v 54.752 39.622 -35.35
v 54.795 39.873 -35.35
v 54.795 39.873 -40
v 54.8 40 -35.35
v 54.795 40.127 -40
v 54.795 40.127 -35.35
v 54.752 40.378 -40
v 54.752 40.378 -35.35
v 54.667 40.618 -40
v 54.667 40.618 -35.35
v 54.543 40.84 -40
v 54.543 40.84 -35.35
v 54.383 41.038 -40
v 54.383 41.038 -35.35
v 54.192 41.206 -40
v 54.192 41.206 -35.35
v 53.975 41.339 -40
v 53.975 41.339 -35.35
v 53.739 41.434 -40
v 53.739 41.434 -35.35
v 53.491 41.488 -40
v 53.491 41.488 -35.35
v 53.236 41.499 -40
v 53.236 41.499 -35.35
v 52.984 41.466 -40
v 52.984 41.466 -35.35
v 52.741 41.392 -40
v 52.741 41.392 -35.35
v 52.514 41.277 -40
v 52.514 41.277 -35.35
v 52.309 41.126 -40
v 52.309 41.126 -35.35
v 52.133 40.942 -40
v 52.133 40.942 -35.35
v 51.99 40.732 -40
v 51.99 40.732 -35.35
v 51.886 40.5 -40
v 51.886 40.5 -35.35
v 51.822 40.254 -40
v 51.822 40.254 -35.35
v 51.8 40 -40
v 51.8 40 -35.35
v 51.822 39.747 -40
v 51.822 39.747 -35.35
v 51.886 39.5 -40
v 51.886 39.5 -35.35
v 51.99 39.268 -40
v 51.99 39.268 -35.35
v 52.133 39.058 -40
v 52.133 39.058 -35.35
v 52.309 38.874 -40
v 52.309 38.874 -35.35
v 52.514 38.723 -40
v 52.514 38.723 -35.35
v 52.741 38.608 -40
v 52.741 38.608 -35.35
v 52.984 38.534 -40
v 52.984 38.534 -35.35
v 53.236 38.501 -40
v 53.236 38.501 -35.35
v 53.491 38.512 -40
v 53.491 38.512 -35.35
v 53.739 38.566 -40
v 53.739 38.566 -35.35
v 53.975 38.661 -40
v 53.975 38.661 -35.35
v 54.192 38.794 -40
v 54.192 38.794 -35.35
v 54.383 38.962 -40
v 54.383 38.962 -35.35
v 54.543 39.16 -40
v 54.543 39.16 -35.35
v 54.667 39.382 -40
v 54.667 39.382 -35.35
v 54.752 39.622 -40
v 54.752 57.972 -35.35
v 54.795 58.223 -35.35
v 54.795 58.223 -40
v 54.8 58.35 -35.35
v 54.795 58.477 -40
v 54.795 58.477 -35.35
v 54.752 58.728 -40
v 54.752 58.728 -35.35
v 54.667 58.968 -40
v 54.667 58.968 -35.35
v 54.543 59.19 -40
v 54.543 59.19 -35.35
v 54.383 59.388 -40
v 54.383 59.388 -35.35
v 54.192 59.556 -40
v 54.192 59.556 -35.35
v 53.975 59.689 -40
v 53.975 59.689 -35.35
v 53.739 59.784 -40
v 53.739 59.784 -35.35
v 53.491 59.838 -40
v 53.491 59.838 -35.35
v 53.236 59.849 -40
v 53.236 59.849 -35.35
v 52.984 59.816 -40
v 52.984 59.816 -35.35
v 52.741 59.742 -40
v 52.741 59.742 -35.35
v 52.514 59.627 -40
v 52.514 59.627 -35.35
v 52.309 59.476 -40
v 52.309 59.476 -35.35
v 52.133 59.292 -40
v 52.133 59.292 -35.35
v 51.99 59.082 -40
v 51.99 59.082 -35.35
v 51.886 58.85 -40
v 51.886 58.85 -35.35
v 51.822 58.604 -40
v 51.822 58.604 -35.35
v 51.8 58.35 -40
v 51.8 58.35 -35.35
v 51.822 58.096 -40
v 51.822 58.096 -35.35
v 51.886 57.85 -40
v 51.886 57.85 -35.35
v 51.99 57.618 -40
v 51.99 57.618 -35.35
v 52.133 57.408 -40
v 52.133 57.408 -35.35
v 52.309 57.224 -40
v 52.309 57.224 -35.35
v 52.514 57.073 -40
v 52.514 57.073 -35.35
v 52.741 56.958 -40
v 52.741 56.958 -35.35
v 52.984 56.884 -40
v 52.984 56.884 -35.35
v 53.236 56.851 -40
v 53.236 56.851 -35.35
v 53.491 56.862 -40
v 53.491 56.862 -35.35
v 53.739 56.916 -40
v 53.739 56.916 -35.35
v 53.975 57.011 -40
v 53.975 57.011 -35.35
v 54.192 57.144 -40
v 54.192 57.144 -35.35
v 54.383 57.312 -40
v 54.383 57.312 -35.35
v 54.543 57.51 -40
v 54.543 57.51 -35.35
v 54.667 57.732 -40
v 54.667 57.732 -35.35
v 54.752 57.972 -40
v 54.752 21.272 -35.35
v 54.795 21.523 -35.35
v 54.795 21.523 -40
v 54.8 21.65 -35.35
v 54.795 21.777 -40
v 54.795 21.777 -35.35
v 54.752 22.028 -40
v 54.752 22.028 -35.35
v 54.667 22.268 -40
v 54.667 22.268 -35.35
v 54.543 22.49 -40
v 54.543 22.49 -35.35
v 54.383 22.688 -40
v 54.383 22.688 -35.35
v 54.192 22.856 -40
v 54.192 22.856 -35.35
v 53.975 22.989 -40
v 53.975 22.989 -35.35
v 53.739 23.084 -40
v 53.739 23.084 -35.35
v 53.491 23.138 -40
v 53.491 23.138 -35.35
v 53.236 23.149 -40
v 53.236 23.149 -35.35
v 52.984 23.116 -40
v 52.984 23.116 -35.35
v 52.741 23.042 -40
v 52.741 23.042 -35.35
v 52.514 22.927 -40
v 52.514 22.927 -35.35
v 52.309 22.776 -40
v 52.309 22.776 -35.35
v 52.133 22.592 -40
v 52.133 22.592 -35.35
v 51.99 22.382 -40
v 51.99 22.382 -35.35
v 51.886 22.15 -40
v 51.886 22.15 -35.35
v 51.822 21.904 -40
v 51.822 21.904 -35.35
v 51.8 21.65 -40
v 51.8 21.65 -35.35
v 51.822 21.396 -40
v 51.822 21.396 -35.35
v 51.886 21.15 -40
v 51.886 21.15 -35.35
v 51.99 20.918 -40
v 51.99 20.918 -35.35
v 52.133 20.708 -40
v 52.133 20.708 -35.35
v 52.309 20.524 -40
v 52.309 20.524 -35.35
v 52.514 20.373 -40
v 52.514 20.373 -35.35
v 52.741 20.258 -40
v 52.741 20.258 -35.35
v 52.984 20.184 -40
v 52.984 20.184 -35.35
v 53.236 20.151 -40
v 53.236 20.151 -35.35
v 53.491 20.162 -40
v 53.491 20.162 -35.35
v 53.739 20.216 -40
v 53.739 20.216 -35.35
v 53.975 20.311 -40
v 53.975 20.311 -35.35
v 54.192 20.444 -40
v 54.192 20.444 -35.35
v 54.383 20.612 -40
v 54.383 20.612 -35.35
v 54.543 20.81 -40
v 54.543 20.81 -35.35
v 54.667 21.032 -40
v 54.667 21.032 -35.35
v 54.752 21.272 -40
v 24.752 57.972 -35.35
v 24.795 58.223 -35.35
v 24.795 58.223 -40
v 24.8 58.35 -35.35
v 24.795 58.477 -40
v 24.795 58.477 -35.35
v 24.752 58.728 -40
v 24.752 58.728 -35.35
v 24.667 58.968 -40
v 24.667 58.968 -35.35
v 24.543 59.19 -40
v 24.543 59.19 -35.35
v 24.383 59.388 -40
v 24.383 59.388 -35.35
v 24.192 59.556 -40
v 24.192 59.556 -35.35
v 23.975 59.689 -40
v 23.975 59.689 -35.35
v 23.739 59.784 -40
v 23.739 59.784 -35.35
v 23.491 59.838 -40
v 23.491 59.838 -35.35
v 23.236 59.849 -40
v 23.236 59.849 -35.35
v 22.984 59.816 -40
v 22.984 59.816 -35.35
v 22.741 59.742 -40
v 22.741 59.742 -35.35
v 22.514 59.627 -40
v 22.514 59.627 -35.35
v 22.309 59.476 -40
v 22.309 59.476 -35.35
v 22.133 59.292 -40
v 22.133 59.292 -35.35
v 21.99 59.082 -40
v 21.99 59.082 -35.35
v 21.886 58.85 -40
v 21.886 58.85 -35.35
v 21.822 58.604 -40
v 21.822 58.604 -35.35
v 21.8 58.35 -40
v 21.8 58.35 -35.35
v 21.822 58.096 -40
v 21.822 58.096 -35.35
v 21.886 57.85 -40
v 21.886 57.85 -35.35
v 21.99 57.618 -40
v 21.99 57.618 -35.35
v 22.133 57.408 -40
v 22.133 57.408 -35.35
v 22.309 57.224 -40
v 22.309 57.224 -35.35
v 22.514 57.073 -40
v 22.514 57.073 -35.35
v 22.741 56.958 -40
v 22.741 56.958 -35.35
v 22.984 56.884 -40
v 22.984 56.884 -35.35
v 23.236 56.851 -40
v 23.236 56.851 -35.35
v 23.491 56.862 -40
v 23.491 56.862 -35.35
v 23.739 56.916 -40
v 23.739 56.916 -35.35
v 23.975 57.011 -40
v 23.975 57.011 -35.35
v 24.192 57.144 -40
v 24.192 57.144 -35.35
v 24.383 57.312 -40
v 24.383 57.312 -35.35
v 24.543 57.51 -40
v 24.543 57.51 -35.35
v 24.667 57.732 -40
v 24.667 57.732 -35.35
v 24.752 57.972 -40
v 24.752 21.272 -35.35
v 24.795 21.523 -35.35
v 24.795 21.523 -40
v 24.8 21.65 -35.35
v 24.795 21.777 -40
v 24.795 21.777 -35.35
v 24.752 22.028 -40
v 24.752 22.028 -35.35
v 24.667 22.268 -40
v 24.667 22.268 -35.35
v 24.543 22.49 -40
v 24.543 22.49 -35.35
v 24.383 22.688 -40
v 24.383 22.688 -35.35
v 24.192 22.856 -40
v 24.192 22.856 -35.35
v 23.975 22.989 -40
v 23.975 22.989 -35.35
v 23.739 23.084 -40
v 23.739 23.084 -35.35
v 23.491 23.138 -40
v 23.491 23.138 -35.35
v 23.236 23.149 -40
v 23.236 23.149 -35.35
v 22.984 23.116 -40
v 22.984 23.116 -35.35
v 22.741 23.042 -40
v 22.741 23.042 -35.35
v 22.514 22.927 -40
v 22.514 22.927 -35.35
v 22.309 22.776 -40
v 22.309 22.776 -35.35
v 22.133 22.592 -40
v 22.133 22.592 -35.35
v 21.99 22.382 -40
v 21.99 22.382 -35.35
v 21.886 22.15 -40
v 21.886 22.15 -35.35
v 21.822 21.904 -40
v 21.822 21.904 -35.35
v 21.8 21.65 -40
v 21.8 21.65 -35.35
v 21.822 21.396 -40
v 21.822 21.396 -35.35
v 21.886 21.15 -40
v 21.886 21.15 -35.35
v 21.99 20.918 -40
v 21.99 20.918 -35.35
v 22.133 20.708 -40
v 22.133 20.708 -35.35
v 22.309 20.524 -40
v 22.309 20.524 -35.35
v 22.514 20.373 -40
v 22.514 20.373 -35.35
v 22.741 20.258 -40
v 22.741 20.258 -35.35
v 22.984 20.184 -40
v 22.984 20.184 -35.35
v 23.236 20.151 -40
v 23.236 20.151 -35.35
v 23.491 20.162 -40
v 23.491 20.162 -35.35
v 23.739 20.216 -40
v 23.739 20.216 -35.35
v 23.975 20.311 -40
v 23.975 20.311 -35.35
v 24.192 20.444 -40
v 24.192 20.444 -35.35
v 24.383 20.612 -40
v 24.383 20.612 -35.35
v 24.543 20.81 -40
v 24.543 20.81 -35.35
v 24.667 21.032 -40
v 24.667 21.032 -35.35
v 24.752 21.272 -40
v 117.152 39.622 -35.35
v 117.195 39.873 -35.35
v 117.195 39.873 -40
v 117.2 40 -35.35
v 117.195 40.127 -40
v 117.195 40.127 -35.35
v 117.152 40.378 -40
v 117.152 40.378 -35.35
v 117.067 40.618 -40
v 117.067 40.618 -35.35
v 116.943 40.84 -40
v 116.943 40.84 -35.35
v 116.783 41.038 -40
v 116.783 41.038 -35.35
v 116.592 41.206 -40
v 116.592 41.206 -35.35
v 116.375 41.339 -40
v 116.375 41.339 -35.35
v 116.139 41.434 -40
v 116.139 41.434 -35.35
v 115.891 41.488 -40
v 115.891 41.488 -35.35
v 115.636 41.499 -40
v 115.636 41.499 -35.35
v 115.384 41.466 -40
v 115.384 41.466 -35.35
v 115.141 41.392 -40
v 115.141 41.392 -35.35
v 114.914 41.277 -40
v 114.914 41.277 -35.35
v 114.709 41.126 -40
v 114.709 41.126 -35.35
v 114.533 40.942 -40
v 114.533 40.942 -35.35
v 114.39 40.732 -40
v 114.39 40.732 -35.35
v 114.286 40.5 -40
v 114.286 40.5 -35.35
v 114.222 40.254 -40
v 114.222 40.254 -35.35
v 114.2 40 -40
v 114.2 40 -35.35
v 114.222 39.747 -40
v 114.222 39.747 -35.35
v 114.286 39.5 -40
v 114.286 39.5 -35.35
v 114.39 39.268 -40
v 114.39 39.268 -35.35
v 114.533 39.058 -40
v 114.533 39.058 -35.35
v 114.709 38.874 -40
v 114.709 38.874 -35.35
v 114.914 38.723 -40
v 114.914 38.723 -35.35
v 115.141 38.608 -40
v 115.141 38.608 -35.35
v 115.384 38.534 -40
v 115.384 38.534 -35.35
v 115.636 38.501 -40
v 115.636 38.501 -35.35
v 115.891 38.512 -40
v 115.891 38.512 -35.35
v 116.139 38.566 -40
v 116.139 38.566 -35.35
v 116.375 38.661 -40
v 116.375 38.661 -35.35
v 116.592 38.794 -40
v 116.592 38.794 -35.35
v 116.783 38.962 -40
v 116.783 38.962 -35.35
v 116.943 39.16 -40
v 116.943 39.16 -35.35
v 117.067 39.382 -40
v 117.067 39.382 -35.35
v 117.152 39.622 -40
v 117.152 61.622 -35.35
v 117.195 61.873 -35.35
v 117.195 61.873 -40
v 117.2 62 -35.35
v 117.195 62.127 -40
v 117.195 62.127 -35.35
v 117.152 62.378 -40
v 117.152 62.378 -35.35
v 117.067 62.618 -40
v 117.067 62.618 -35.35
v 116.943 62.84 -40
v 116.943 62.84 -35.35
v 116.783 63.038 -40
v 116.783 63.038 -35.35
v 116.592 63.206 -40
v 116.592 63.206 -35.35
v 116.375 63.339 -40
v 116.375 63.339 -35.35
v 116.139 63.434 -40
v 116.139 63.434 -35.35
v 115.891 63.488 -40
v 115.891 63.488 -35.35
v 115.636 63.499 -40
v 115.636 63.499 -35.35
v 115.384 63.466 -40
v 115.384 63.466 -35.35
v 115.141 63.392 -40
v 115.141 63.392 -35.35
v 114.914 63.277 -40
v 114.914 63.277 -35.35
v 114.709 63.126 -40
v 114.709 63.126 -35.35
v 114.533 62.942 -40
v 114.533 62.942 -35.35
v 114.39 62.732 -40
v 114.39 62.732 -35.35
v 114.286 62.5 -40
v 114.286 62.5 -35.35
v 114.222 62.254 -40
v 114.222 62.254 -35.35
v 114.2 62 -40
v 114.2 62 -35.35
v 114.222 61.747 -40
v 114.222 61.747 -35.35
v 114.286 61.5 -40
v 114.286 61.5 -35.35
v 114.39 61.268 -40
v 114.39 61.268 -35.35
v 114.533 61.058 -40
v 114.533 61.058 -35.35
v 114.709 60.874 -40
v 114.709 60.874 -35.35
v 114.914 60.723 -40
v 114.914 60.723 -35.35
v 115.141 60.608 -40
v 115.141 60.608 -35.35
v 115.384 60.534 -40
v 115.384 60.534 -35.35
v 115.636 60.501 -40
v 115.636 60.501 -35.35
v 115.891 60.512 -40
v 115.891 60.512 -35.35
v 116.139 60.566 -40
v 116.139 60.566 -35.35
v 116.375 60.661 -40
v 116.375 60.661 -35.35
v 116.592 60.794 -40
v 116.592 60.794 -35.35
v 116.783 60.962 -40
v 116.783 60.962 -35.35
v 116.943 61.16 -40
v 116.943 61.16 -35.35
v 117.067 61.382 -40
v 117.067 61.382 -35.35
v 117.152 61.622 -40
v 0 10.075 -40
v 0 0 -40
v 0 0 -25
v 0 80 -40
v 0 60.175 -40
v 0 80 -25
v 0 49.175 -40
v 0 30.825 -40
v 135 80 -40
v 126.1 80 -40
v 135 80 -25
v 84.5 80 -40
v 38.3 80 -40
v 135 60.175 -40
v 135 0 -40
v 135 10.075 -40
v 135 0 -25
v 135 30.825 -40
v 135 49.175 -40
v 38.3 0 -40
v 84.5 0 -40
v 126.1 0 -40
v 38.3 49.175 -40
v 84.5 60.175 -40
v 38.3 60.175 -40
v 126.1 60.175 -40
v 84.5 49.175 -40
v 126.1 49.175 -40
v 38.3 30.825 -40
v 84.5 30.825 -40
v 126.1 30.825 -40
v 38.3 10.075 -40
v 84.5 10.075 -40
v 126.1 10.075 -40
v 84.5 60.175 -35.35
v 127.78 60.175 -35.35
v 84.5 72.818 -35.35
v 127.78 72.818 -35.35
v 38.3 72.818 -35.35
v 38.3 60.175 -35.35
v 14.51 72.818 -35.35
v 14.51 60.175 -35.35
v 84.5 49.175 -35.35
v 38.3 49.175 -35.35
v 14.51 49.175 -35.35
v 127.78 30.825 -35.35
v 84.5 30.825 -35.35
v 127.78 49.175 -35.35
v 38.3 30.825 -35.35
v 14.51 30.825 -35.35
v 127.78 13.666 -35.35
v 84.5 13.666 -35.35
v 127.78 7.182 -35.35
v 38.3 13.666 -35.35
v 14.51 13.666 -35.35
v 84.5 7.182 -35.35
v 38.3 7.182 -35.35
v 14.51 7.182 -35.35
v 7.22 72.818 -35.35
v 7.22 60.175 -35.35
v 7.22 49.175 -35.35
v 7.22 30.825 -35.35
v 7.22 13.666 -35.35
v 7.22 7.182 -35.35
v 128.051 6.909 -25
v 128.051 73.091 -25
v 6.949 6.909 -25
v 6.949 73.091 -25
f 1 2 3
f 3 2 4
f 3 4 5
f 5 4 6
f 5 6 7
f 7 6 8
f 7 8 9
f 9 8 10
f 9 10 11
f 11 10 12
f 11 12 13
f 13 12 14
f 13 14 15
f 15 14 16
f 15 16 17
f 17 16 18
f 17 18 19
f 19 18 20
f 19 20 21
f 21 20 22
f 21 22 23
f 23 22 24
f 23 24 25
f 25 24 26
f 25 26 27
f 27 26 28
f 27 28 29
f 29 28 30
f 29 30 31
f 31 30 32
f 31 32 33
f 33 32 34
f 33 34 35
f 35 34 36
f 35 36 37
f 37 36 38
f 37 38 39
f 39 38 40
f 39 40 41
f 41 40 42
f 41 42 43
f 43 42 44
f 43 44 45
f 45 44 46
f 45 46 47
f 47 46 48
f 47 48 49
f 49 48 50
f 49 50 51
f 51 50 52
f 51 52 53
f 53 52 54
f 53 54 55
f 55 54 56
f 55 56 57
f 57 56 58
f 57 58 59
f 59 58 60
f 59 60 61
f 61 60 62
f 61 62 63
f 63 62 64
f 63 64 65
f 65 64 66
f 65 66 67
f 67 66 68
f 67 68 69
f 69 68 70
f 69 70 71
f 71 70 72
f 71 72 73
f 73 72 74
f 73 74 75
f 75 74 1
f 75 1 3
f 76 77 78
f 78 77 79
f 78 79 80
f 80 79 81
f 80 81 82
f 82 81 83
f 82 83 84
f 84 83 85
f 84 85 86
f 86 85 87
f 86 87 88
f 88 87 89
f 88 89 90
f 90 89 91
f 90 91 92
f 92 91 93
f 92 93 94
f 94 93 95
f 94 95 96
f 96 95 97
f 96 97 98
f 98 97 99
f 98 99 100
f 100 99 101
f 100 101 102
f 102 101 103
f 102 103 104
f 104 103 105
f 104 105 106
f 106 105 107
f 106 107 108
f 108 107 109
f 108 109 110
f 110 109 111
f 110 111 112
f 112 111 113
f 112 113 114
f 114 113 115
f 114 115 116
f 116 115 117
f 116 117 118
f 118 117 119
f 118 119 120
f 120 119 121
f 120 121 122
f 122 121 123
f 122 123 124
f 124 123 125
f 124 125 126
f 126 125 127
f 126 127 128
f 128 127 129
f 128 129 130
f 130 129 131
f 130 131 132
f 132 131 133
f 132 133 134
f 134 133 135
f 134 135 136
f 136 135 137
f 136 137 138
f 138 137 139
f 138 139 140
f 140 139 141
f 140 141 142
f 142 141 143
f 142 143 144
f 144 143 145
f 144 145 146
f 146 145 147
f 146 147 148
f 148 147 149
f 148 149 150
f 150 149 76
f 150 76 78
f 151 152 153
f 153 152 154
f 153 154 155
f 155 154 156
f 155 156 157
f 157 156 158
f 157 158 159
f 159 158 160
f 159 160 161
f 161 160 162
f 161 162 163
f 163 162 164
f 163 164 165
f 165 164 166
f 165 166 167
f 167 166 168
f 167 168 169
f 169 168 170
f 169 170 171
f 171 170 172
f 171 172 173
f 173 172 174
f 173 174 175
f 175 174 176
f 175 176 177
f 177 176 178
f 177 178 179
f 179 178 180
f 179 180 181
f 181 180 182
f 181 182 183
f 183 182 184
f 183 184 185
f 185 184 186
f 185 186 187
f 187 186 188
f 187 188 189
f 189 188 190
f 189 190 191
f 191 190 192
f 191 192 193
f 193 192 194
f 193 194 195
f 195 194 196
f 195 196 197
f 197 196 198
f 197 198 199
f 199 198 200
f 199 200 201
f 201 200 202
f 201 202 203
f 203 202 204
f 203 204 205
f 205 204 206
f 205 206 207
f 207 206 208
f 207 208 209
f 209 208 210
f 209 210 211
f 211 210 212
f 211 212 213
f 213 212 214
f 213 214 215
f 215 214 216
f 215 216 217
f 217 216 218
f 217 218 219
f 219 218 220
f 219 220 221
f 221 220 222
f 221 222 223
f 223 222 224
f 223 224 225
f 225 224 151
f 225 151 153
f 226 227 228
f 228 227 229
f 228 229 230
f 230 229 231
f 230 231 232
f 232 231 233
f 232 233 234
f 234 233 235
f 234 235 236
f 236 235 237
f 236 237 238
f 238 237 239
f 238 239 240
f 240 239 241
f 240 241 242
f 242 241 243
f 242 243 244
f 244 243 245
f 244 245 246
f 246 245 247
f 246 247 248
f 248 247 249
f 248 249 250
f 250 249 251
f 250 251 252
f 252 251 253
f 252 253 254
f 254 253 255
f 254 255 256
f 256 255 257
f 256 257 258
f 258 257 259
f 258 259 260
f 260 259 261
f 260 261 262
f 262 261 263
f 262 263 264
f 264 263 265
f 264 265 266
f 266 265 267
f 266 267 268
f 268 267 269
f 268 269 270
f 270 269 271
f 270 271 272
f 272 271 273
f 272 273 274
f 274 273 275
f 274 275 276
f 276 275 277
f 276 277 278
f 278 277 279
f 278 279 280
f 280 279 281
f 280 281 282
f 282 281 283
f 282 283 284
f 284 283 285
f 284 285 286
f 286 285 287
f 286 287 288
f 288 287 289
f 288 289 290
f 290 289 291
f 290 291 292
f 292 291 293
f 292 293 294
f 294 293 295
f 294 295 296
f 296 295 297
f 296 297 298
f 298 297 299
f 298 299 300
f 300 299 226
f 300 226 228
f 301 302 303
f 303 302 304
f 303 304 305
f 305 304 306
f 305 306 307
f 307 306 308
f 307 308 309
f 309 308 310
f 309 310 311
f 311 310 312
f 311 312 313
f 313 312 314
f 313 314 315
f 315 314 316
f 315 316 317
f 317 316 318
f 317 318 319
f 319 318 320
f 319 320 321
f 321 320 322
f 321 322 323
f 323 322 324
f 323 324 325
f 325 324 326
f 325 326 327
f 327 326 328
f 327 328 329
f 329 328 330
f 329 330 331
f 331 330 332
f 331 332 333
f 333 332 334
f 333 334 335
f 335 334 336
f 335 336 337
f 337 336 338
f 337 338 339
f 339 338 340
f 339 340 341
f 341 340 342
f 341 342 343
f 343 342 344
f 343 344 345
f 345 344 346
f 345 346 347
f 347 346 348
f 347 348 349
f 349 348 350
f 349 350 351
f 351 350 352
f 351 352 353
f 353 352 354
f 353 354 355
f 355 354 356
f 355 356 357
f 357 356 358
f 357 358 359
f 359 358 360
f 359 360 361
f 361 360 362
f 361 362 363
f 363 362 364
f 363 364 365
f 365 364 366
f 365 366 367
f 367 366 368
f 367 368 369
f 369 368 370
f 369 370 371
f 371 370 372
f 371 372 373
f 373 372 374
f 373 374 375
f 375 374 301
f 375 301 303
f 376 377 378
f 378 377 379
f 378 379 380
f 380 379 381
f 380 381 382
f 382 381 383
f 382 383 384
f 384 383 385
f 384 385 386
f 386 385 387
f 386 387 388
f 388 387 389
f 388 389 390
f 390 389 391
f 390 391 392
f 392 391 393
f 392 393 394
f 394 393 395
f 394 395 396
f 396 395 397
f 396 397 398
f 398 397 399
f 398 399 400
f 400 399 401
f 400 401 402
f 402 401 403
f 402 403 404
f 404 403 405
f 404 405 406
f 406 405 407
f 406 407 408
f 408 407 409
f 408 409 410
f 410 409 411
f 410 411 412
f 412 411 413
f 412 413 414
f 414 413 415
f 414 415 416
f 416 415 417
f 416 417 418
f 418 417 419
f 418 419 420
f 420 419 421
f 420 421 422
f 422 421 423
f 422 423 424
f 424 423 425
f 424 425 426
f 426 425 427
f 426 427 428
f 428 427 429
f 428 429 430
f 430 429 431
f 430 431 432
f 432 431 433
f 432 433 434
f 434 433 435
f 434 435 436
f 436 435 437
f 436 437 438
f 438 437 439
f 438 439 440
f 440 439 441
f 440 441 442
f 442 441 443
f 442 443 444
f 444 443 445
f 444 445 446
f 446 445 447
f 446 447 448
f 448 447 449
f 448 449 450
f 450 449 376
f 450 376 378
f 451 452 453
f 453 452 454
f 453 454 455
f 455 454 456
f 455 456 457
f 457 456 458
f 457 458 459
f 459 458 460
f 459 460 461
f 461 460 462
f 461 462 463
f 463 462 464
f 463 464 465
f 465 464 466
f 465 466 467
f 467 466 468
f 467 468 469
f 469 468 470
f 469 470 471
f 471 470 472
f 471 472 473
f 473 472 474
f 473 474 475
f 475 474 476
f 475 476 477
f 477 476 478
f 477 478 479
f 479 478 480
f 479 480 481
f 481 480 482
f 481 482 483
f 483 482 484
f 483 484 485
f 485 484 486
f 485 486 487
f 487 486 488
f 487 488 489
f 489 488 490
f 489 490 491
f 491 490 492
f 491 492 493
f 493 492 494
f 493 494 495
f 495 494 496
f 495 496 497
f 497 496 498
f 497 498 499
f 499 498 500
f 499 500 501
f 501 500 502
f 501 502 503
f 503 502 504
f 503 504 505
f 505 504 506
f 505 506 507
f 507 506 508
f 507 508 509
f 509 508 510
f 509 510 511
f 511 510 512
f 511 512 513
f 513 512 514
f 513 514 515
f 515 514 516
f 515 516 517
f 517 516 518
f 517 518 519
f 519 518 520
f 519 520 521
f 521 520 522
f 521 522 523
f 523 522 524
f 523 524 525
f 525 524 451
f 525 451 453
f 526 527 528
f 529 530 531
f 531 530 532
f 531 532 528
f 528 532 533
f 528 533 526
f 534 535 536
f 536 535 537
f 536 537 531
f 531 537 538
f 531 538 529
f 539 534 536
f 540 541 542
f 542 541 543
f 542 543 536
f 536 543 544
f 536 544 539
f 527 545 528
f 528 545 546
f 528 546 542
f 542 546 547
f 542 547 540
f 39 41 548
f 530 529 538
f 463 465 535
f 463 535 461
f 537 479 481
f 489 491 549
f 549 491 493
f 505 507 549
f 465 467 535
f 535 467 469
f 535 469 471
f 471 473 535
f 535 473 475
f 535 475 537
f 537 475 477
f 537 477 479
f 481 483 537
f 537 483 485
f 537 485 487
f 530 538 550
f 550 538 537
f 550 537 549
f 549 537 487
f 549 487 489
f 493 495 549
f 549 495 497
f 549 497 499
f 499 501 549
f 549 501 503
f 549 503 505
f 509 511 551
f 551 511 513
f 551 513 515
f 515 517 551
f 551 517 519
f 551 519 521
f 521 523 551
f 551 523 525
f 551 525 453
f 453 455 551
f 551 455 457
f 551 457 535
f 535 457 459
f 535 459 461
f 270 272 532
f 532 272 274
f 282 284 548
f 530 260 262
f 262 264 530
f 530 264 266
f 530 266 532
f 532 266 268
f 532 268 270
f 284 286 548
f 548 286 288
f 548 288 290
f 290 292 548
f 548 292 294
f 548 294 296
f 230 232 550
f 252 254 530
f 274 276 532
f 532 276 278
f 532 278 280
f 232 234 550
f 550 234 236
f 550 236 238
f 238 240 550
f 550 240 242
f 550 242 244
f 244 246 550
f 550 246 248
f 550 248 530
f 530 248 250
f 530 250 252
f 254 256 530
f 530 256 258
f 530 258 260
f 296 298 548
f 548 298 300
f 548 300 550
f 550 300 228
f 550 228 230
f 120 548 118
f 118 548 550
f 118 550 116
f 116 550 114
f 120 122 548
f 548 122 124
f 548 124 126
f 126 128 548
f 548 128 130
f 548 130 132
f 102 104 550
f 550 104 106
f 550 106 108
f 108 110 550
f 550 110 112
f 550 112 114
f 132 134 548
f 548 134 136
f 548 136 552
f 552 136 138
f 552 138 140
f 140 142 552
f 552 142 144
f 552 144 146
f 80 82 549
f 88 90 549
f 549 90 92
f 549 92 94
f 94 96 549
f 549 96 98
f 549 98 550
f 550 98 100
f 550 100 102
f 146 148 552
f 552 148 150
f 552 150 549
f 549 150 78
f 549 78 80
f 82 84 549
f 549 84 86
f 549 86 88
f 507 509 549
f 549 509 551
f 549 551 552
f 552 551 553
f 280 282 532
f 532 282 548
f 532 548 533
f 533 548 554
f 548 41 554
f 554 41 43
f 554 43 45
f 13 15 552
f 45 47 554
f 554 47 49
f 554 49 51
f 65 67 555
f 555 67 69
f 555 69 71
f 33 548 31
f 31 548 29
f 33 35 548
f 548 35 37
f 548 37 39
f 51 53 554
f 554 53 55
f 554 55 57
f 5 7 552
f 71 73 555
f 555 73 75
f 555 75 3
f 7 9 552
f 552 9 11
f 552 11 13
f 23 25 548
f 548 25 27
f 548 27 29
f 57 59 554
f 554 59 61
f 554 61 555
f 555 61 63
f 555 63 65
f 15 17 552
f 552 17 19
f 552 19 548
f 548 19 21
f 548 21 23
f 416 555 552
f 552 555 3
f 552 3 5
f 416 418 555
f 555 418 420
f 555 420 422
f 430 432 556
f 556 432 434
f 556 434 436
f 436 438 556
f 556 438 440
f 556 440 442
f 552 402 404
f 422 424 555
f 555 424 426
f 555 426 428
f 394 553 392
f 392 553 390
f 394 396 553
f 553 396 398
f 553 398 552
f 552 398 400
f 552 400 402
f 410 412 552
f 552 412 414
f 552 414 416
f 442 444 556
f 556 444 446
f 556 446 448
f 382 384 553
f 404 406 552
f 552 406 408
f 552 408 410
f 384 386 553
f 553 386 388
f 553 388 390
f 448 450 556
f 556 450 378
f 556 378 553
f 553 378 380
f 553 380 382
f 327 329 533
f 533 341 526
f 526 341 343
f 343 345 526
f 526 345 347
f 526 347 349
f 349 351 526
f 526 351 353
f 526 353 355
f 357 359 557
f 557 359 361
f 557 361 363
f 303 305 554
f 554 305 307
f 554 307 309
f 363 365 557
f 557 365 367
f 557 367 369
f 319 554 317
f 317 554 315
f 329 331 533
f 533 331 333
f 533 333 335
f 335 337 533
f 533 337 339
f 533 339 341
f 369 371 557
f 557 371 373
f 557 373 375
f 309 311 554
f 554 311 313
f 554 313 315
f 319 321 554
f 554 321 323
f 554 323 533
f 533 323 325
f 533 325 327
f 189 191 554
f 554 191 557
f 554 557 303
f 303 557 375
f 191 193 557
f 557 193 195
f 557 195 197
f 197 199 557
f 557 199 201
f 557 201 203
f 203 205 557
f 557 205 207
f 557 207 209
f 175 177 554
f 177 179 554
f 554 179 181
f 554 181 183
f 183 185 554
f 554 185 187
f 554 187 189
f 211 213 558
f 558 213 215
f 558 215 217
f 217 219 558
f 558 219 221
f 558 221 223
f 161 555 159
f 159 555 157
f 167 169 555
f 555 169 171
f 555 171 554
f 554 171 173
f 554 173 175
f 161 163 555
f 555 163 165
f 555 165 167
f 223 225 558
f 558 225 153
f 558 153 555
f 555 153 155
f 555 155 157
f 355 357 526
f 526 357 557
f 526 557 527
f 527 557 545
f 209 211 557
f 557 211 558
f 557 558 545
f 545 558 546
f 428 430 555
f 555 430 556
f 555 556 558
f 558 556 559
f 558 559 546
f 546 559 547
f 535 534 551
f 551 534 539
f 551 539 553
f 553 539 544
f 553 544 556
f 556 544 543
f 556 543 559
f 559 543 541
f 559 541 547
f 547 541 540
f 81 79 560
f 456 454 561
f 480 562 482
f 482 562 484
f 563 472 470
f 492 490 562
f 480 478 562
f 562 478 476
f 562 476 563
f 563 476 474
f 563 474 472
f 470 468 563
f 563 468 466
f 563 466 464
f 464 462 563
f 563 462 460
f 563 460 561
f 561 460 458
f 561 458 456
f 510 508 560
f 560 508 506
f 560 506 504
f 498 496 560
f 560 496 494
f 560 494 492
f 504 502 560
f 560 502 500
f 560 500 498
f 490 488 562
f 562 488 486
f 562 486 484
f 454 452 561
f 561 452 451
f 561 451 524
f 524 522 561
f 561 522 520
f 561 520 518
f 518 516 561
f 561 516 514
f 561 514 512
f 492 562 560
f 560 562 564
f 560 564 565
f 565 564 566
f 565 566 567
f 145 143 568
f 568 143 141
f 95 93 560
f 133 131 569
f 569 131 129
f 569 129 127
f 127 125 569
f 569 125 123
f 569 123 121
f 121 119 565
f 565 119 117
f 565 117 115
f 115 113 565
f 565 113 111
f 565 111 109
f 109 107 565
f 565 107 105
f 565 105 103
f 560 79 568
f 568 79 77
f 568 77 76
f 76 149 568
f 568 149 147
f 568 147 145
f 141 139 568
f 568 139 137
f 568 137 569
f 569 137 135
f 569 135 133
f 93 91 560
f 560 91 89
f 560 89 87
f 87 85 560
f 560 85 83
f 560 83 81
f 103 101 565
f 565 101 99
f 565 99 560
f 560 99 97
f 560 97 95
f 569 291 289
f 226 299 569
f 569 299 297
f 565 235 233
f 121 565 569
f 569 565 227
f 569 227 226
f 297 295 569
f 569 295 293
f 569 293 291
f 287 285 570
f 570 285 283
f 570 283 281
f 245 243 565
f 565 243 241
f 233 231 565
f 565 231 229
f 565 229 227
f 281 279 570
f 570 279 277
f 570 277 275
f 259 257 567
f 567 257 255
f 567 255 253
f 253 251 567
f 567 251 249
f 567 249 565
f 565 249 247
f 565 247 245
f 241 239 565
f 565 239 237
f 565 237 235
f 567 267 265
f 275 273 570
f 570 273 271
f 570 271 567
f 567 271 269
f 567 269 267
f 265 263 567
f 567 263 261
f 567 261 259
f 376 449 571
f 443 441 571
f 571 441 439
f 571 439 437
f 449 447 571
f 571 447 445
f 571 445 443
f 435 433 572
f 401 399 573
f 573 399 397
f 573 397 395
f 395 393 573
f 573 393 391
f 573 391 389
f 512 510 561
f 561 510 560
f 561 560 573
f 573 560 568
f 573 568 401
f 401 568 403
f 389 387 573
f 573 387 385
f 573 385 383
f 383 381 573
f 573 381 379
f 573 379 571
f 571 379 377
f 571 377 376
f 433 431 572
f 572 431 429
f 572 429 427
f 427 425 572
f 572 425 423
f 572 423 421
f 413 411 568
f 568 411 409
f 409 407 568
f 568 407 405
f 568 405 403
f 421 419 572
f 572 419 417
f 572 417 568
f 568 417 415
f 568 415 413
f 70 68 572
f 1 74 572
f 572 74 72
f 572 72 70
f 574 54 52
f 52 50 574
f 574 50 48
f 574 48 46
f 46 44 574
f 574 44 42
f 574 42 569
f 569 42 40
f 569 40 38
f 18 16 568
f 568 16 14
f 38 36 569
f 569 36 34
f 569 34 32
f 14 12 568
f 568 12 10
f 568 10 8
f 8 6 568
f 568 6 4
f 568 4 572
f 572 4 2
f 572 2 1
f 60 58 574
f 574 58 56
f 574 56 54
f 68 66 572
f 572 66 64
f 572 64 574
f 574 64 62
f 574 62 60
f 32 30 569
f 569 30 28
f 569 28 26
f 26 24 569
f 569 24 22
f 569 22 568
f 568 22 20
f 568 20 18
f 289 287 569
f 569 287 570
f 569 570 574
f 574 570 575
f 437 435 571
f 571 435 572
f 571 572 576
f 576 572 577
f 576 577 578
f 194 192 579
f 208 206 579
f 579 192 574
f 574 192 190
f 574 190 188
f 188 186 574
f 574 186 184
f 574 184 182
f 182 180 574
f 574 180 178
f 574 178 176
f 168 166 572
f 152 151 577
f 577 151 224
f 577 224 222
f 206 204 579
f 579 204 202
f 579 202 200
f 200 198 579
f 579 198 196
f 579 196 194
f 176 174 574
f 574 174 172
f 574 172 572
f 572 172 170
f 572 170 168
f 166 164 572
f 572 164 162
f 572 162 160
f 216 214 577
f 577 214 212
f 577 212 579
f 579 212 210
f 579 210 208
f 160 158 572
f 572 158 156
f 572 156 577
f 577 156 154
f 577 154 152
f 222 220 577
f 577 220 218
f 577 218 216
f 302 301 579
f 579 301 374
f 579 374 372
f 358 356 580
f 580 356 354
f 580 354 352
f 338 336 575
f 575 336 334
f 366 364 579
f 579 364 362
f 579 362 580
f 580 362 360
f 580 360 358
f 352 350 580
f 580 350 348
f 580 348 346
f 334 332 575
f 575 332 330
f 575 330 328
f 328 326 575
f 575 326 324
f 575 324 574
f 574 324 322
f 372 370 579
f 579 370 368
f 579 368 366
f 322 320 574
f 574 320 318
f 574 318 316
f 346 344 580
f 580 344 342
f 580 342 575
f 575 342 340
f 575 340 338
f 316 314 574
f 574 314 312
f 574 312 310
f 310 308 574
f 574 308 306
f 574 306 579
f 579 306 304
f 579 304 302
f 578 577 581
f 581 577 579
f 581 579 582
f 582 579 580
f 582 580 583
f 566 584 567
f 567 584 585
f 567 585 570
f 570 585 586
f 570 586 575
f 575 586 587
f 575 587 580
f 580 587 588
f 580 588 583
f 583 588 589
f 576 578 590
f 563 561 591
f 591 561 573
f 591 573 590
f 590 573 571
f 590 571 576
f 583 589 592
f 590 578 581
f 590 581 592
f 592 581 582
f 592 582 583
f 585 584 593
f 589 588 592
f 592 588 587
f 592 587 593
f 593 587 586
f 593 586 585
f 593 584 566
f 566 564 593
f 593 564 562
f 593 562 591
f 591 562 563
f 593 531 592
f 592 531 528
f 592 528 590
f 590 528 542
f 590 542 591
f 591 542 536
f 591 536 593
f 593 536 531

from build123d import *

# Parameters (mm, degrees)
SKETCH1_W           = 135
SKETCH1_H           = 80
BOSS_EXTRUDE1_DEPTH = 40
SKETCH2_R           = 1.5
CUT_EXTRUDE1_DEPTH  = 10
SKETCH4_W           = 135
SKETCH4_H           = 25
CUT_EXTRUDE2_DEPTH  = 100


with BuildPart() as part:
    # Sketch1 → Boss-Extrude1 (new body)
    with BuildSketch(Plane.XY):
        with Locations((67.5, 40)):
            Rectangle(SKETCH1_W, SKETCH1_H)
    extrude(amount=-BOSS_EXTRUDE1_DEPTH)

    # Sketch2 → Cut-Extrude1 (cut)
    with BuildSketch(Plane(origin=(0, 0, -40), x_dir=(-1, 0, 0), z_dir=(0, 0, -1))):
        with Locations((-53.3, 40)):
            Circle(SKETCH2_R)
        with Locations((-53.3, 58.35)):
            Circle(SKETCH2_R)
        with Locations((-53.3, 21.65)):
            Circle(SKETCH2_R)
        with Locations((-23.3, 58.35)):
            Circle(SKETCH2_R)
        with Locations((-23.3, 21.65)):
            Circle(SKETCH2_R)
        with Locations((-115.7, 40)):
            Circle(SKETCH2_R)
        with Locations((-115.7, 62)):
            Circle(SKETCH2_R)
    extrude(amount=-CUT_EXTRUDE1_DEPTH, mode=Mode.SUBTRACT)

    # Cavity1: read off the stored shape, not the designer's step
    # Cavity1: loft between two sections, ruled curve by curve
    cavity1_from = [
        Edge.make_line((128.706, 6.25125, 0), (128.706, 73.74875, 0)),
        Edge.make_line((6.294, 6.25125, 0), (128.706, 6.25125, 0)),
        Edge.make_line((6.294, 73.74875, 0), (6.294, 6.25125, 0)),
        Edge.make_line((128.706, 73.74875, 0), (6.294, 73.74875, 0)),
    ]
    cavity1_to = [
        Edge.make_line((127.780327673, 7.181504864, -35.35), (127.780327673, 72.818495136, -35.35)),
        Edge.make_line((7.219672327, 7.181504864, -35.35), (127.780327673, 7.181504864, -35.35)),
        Edge.make_line((7.219672327, 72.818495136, -35.35), (7.219672327, 7.181504864, -35.35)),
        Edge.make_line((127.780327673, 72.818495136, -35.35), (7.219672327, 72.818495136, -35.35)),
    ]
    cavity1 = Solid(Shell([*[Face.make_surface_from_curves(cavity1_from[k], cavity1_to[k]) for k in range(4)], Face(Wire(cavity1_from)), Face(Wire(cavity1_to))]))
    add(cavity1, mode=Mode.SUBTRACT)

    # Sketch4 → Cut-Extrude2 (cut)
    with BuildSketch(Plane(origin=(0, 80, 0), x_dir=(1, 0, 0), z_dir=(0, 1, 0))):
        with Locations((67.5, 12.5)):
            Rectangle(SKETCH4_W, SKETCH4_H)
    extrude(amount=-CUT_EXTRUDE2_DEPTH, mode=Mode.SUBTRACT)


solid = part.part
